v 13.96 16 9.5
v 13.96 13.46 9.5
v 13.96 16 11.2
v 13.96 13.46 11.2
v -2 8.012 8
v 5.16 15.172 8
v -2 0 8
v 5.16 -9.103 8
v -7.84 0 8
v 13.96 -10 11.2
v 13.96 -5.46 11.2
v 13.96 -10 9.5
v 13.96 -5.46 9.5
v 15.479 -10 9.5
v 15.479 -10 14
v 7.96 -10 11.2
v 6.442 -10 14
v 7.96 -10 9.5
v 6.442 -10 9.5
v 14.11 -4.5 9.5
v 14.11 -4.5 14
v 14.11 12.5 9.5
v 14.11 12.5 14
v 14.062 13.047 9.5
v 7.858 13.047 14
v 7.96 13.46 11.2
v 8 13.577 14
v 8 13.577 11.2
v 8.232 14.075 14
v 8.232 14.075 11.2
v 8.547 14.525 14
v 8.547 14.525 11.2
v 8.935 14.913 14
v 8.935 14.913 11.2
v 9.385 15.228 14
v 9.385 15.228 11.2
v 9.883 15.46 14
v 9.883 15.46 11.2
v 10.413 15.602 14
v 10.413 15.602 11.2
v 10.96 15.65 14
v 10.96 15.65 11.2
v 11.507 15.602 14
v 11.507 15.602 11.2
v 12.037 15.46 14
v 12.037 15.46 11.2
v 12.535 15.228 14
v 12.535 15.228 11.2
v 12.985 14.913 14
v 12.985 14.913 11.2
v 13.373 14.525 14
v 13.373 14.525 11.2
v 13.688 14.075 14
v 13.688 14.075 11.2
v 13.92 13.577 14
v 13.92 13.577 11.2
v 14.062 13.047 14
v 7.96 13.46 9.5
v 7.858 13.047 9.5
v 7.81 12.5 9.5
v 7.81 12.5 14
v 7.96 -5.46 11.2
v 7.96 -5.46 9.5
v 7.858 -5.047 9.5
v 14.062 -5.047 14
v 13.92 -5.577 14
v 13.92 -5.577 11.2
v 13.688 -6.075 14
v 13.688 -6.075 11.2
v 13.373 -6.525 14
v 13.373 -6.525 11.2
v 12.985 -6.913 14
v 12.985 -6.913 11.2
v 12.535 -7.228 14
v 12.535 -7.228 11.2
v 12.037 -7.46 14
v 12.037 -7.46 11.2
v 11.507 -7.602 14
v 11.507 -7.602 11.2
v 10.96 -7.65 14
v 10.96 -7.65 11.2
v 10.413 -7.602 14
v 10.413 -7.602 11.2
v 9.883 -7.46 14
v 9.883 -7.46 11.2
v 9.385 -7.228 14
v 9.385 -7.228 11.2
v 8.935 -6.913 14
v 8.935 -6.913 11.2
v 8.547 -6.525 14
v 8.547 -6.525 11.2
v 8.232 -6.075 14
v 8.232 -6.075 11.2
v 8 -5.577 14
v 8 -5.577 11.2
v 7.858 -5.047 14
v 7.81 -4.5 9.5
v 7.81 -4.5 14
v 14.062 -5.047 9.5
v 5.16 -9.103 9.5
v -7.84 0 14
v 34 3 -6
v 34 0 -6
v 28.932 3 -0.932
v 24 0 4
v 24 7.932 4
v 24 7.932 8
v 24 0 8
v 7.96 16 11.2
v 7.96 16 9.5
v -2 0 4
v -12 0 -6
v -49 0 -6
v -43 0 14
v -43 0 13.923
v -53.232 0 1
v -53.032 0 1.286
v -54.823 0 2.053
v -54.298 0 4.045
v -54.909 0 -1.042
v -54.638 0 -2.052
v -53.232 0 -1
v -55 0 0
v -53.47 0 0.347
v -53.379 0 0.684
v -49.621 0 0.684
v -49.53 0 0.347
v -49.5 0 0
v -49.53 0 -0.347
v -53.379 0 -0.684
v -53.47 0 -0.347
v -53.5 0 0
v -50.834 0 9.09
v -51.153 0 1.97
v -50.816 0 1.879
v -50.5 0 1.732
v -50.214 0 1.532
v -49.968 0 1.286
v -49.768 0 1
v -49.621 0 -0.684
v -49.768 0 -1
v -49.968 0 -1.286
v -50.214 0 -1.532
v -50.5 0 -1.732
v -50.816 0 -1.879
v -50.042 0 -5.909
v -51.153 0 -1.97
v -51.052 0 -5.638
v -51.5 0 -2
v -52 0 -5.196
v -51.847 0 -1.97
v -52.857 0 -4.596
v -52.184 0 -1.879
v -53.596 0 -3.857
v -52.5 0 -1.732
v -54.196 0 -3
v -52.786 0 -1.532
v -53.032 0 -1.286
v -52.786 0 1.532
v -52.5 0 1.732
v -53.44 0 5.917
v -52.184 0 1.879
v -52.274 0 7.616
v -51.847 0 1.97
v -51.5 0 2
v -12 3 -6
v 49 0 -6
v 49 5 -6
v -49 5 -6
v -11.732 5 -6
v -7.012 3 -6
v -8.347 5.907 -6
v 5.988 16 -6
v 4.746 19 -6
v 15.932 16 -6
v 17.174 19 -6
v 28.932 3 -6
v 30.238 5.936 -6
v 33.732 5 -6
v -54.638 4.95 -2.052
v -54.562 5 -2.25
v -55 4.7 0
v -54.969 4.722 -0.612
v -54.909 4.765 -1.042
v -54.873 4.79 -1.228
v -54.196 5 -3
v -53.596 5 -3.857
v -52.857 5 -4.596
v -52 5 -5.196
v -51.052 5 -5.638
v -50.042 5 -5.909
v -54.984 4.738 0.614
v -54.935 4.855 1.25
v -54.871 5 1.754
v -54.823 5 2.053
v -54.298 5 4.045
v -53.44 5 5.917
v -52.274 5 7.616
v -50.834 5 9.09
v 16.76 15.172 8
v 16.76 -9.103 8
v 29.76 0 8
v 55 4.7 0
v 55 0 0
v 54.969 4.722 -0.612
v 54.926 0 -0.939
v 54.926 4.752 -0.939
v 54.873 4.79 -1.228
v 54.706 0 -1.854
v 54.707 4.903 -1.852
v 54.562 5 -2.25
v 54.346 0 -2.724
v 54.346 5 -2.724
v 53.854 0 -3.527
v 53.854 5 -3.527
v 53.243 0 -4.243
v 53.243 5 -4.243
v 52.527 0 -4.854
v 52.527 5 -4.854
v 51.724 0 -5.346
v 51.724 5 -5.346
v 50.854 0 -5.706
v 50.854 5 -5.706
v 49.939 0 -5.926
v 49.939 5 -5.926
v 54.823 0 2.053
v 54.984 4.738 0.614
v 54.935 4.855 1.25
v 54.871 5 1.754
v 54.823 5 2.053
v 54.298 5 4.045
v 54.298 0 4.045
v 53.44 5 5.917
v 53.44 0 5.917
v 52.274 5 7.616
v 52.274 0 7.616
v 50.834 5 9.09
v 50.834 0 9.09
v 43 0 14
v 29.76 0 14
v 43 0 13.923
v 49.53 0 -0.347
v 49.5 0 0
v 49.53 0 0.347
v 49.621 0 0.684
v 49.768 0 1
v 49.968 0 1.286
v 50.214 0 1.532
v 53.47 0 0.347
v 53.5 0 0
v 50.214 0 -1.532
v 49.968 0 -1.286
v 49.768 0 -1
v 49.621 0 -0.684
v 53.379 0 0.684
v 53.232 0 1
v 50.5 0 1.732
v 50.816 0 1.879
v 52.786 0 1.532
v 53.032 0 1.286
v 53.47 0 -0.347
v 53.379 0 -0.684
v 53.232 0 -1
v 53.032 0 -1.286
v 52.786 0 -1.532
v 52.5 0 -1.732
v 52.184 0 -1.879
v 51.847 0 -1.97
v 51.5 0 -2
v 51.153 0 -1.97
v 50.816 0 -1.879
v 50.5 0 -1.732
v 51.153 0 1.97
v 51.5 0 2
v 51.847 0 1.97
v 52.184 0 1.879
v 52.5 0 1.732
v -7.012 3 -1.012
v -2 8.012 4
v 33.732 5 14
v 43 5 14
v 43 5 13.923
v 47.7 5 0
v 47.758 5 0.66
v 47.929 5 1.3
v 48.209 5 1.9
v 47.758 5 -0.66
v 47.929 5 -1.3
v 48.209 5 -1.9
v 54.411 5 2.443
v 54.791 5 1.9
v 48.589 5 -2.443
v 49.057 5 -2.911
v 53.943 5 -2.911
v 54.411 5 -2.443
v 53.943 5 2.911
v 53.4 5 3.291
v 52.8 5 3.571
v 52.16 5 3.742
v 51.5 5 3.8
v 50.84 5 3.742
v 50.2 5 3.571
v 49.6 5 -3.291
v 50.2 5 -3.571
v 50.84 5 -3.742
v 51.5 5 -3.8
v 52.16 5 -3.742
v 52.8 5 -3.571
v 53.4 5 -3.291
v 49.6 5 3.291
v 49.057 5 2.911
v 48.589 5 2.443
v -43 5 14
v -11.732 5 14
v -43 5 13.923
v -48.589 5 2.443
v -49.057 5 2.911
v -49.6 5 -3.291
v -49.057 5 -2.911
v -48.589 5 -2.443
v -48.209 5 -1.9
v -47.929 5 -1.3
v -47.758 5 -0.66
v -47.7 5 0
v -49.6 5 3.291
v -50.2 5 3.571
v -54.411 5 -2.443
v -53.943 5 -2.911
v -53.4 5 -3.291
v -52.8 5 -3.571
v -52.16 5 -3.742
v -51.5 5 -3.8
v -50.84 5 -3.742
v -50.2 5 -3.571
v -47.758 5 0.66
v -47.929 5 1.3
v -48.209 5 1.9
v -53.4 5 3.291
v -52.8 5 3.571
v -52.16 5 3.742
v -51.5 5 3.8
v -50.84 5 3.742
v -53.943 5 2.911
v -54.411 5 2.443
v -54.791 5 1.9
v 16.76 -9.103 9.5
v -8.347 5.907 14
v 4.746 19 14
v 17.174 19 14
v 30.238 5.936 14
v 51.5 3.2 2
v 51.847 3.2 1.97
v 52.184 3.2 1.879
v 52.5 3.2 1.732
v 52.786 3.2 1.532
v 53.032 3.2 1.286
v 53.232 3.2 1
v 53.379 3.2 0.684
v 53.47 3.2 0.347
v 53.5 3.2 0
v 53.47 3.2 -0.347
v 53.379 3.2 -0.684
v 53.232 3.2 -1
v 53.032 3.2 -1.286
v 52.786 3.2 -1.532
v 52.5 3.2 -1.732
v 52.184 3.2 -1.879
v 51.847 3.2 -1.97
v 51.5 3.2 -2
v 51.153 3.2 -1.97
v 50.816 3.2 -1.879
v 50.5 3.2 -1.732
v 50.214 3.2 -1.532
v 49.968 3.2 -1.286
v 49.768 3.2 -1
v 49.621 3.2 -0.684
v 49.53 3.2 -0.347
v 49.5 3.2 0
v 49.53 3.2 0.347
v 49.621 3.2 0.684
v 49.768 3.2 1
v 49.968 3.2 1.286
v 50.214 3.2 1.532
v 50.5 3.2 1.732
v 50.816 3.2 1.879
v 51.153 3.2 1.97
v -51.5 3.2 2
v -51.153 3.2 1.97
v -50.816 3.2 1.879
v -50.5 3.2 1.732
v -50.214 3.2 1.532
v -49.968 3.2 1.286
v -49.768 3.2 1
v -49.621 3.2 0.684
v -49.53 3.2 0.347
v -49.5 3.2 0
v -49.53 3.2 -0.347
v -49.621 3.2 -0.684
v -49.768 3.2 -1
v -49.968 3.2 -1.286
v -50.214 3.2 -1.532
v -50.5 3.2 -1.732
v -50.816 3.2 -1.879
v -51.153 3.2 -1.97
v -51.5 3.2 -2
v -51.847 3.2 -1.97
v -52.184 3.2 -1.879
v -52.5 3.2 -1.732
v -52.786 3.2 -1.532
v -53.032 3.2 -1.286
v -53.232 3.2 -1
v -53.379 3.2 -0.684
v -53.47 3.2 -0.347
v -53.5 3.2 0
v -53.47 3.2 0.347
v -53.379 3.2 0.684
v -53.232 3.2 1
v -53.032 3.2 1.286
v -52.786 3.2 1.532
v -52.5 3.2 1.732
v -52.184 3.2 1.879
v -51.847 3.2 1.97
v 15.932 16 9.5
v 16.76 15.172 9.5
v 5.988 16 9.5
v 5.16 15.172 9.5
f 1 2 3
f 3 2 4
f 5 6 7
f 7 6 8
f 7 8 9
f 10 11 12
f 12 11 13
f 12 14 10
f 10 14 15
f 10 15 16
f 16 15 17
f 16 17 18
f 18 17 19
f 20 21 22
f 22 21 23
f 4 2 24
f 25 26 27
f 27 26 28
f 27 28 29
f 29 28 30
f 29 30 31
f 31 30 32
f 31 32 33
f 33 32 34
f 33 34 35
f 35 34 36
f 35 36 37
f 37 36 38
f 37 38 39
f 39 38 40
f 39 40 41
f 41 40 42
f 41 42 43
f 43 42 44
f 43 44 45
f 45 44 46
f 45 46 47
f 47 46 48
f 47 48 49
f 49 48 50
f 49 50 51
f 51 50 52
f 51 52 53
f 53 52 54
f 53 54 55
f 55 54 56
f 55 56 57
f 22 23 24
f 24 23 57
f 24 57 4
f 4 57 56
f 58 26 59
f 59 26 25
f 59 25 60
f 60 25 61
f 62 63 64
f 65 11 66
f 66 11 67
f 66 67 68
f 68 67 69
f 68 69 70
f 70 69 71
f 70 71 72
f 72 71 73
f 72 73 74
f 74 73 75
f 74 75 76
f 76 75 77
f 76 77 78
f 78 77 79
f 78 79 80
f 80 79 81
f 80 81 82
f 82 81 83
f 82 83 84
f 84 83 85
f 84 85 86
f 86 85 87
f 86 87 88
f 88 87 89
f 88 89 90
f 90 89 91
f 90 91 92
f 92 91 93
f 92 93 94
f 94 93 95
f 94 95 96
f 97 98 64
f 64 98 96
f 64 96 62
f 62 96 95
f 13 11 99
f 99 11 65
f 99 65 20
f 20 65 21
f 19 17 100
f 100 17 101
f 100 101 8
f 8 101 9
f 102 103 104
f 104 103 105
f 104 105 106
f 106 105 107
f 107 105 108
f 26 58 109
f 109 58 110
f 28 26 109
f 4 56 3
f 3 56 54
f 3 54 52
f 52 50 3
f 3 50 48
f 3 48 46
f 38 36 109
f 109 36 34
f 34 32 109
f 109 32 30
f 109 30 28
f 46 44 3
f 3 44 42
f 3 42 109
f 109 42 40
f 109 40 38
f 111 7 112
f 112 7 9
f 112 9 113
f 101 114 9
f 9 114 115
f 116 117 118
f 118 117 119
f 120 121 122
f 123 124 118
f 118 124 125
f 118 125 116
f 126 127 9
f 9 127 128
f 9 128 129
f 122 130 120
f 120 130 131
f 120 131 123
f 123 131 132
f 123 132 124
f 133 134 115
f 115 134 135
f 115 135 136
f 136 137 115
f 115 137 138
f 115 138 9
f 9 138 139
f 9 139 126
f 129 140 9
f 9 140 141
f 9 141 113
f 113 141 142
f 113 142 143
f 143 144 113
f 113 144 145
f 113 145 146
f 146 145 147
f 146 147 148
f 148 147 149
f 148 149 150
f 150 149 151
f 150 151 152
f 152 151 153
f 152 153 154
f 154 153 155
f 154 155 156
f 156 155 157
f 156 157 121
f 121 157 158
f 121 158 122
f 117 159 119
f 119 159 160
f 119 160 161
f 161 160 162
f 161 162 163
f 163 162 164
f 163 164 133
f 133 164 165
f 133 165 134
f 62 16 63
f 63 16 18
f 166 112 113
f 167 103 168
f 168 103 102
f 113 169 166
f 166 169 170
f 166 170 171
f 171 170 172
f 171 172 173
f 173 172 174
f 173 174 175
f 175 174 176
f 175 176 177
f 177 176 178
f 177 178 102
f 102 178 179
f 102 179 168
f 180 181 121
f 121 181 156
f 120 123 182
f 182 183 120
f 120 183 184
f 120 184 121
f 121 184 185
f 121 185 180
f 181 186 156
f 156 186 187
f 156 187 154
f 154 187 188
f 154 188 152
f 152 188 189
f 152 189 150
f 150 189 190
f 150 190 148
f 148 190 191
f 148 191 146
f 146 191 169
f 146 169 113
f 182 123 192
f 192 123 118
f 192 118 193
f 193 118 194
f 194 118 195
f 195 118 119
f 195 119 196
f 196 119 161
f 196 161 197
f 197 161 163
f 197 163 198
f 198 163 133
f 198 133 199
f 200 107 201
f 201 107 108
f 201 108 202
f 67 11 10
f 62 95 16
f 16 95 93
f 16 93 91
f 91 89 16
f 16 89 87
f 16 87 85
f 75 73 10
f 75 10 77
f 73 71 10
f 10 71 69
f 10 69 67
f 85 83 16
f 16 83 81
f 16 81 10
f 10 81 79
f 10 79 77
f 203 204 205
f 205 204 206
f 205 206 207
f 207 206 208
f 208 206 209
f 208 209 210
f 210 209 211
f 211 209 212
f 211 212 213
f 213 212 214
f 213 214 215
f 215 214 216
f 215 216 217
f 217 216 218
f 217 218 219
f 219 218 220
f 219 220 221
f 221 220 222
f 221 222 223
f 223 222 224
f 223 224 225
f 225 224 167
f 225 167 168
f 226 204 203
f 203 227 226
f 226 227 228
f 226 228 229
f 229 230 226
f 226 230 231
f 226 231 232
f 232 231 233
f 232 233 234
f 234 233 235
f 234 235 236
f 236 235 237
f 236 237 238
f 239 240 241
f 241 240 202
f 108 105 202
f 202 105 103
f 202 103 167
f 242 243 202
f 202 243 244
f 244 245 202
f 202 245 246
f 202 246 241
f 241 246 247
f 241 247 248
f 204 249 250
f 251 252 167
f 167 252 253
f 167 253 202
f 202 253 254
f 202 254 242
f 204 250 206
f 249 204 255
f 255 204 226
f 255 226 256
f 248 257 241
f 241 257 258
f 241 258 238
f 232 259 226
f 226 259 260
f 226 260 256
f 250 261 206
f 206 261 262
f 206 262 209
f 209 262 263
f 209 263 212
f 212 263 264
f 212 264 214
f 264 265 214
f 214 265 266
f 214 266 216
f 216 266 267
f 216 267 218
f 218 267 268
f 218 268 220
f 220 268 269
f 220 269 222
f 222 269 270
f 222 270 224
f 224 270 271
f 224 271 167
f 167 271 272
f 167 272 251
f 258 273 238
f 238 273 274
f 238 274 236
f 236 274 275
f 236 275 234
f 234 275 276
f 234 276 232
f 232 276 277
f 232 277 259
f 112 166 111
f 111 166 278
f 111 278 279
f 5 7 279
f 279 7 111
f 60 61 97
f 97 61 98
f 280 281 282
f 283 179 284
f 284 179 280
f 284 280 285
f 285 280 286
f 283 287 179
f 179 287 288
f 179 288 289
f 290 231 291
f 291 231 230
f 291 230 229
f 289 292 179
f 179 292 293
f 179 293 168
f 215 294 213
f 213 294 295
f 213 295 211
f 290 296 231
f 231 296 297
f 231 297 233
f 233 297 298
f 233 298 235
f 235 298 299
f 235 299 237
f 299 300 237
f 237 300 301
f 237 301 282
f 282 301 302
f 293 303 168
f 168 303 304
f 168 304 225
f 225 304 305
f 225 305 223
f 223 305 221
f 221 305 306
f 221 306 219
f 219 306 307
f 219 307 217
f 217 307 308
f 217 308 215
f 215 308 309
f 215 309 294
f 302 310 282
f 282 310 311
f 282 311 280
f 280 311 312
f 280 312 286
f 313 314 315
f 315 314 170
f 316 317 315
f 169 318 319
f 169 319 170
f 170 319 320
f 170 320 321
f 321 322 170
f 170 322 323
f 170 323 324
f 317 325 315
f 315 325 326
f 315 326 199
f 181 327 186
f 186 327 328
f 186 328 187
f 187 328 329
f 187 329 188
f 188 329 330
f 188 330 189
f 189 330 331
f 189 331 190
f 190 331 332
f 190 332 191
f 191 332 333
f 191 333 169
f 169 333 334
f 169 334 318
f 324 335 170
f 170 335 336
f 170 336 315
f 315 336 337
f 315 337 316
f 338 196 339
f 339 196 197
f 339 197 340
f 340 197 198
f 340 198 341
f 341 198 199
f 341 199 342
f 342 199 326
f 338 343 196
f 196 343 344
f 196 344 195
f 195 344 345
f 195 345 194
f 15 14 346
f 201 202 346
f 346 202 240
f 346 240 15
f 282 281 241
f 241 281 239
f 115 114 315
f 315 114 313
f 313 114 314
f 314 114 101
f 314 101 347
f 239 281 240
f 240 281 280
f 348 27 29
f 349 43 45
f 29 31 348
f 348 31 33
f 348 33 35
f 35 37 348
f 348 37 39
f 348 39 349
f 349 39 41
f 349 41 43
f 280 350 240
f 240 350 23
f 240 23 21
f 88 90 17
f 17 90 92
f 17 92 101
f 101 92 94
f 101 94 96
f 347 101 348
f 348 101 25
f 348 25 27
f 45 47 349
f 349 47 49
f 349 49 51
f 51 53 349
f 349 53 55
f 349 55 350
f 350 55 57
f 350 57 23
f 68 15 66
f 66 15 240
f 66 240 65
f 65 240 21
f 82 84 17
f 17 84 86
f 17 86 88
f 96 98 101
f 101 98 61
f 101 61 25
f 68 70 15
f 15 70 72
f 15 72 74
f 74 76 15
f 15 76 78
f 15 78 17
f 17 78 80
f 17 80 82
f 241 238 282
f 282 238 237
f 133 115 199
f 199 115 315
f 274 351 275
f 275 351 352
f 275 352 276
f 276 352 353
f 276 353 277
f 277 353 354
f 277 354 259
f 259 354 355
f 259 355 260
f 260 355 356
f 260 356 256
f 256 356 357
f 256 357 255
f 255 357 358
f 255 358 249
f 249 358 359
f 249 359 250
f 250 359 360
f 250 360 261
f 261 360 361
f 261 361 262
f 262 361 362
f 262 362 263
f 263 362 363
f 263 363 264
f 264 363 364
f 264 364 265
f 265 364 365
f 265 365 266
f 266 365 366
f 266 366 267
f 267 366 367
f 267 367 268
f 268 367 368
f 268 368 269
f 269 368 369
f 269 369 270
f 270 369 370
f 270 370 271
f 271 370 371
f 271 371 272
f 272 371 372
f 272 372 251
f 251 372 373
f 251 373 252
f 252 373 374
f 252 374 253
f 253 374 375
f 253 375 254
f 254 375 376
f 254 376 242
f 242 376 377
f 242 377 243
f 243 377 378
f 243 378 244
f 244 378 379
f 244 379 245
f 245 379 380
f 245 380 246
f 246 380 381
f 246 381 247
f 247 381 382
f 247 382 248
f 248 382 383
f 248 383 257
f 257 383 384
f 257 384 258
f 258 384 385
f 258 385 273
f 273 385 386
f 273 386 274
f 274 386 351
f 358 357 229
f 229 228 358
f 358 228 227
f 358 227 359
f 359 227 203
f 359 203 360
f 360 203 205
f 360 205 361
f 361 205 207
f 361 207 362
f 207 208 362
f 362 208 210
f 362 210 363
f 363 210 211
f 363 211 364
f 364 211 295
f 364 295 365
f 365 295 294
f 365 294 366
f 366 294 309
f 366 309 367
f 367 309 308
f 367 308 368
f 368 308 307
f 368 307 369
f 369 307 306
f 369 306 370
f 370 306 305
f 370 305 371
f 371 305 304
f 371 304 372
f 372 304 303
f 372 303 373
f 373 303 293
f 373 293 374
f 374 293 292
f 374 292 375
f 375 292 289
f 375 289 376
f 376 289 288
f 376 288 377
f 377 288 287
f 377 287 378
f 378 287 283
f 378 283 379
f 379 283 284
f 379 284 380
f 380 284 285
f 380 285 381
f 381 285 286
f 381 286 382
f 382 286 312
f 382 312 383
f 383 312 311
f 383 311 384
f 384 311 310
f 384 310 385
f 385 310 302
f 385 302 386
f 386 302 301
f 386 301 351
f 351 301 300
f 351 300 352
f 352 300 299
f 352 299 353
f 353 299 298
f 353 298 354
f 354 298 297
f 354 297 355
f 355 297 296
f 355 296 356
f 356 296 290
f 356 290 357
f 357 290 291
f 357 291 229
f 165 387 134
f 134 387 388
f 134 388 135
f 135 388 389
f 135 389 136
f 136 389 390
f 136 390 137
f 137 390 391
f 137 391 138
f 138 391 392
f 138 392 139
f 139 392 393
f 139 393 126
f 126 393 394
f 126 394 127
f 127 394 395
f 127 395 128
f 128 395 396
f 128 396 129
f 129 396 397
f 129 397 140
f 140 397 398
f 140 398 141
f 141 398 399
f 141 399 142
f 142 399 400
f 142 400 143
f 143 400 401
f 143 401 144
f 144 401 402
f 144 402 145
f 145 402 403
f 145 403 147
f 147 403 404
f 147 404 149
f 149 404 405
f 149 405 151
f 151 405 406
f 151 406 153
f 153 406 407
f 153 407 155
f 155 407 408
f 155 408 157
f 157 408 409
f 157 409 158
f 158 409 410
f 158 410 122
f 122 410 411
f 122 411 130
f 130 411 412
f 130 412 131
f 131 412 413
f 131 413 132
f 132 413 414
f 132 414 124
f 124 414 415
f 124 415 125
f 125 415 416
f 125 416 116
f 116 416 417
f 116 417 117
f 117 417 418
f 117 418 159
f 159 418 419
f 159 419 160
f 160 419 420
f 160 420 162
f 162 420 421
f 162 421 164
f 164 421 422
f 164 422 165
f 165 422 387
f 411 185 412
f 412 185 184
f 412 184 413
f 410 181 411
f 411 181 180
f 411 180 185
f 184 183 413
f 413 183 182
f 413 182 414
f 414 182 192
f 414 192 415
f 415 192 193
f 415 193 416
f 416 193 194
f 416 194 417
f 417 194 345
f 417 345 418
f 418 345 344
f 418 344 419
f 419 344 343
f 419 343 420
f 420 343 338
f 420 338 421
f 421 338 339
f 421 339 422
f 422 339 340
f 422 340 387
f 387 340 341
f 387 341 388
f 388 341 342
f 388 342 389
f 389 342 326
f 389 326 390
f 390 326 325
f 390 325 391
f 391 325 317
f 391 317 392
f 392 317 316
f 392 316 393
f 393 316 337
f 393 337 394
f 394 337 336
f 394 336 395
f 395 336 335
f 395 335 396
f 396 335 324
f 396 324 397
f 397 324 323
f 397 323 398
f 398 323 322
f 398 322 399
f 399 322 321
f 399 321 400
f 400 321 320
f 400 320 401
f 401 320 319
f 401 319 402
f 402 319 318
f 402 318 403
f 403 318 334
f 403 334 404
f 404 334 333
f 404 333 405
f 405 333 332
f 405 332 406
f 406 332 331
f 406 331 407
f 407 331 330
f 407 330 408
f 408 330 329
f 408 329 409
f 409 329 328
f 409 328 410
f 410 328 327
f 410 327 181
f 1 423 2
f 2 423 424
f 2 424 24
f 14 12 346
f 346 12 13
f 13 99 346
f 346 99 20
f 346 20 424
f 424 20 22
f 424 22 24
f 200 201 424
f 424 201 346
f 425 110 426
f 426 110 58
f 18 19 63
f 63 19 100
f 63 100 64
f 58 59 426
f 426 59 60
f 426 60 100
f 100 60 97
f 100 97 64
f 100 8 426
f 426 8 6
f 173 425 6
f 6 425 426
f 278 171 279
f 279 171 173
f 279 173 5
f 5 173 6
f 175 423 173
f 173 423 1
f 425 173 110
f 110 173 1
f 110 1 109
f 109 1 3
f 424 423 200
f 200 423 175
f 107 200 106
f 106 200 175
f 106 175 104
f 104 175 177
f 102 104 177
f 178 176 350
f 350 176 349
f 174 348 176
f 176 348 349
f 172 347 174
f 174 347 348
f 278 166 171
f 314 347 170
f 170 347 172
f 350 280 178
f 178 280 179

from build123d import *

# Parameters (mm, degrees)
BOSS_EXTRUDE1_DEPTH           = 3
CUT_EXTRUDE1_DEPTH            = 10
CUT_EXTRUDE3_START            = 8
SKETCH8_W                     = 6
SKETCH8_H                     = 3
CUT_EXTRUDE3_DEPTH            = 6
BOSS_EXTRUDE4_START           = 18
BOSS_EXTRUDE4_DEPTH           = 28
BOSS_EXTRUDE5_DEPTH           = 3
CUT_EXTRUDE4_DEPTH            = 3
CUT_EXTRUDE5_DEPTH            = 10
SKETCH18_R                    = 1.5
BOSS_EXTRUDE9_DEPTH           = 2
CHAMFER1_SIZE                 = 15
CHAMFER2_SIZE                 = 15
CHAMFER2_SIZE_2               = 10.503113073
CUT_EXTRUDE6_DEPTH            = 5
BOSS_EXTRUDE8_DEPTH           = 2
CHAMFER3_DEPTH                = 6
CHAMFER3_2_DEPTH              = 5
CSK_FOR_M4_SFHCS1_D           = 4
CSK_FOR_M4_SFHCS1_DEPTH       = 30.798278762
CSK_FOR_M4_SFHCS1_CSINK_D     = 7.5
CSK_FOR_M4_SFHCS1_CSINK_ANGLE = 90
CSK_FOR_M4_SFHCS1_TIP         = 1.201721238
CUT_EXTRUDE7_DEPTH            = 1.5
BOSS_EXTRUDE10_START          = -6
BOSS_EXTRUDE10_DEPTH          = 20
CHAMFER4_SIZE                 = 1.07179677
CHAMFER4_SIZE_2               = 4


with BuildPart() as part:
    # Sketch1 → Boss-Extrude1 (new body)
    with BuildSketch(Plane(origin=(0, 0, 0), x_dir=(1, 0, 0), z_dir=(0, 1, 0))):
        with BuildLine():
            ThreePointArc((-49, -6), (-53.242640687, -4.242640687), (-55, 0))
            ThreePointArc((-55, 0), (-51.485281374, -8.485281374), (-43, -12))
            Line((-43, -12), (43, -12))
            ThreePointArc((43, -12), (51.485281374, -8.485281374), (55, 0))
            ThreePointArc((55, 0), (53.242640687, -4.242640687), (49, -6))
            Line((49, -6), (-49, -6))
        make_face()
        with BuildLine():
            Line((-53, 0), (-55, 0))
            ThreePointArc((-55, 0), (-53.242640687, -4.242640687), (-49, -6))
            Line((-49, -6), (49, -6))
            ThreePointArc((49, -6), (53.242640687, -4.242640687), (55, 0))
            Line((55, 0), (53, 0))
            ThreePointArc((53, 0), (51.5, -1.5), (50, 0))
            Line((50, 0), (-50, 0))
            ThreePointArc((-50, 0), (-51.5, -1.5), (-53, 0))
        make_face()
        with BuildLine():
            Line((49, 6), (-49, 6))
            ThreePointArc((-49, 6), (-53.242640687, 4.242640687), (-55, 0))
            Line((-55, 0), (-53, 0))
            ThreePointArc((-53, 0), (-51.5, 1.5), (-50, 0))
            Line((-50, 0), (50, 0))
            ThreePointArc((50, 0), (51.5, 1.5), (53, 0))
            Line((53, 0), (55, 0))
            ThreePointArc((55, 0), (53.242640687, 4.242640687), (49, 6))
        make_face()
    extrude(amount=BOSS_EXTRUDE1_DEPTH)

    # Sketch2 → Cut-Extrude1 (cut)
    with BuildSketch(Plane(origin=(0, 3, 0), x_dir=(1, 0, 0), z_dir=(0, 1, 0))):
        Polygon((22, -8), (36, 6), (-14, 6), (0, -8), align=None)
    extrude(amount=-CUT_EXTRUDE1_DEPTH, mode=Mode.SUBTRACT)

    # Sketch8 → Cut-Extrude3 (cut)
    with BuildSketch(Plane.XY.offset(CUT_EXTRUDE3_START)):
        with Locations((10.960071178, 1.5)):
            Rectangle(SKETCH8_W, SKETCH8_H)
    extrude(amount=CUT_EXTRUDE3_DEPTH, mode=Mode.SUBTRACT)


with BuildPart() as cut_extrude3_piece_1:
    # of the separate pieces the step leaves, piece 1, a body of its own (cut_extrude3_pieces)
    add(part.part.solids().sort_by_distance((-55, 0, 0))[0])

    # Sketch9 → Boss-Extrude4 (add)
    with BuildSketch(Plane(origin=(0, 0, 0), x_dir=(1, 0, 0), z_dir=(0, 1, 0)).offset(BOSS_EXTRUDE4_START)):
        Polygon((13.960071178, -11.2), (13.960071178, -8), (14.760071178, -8), (14.760071178, -12), (7.160071178, -12), (7.160071178, -8), (7.960071178, -8), (7.960071178, -11.2), align=None)
    extrude(amount=-BOSS_EXTRUDE4_DEPTH)


with BuildPart() as cut_extrude3_piece_2:
    # of the separate pieces the step leaves, piece 2, a body of its own (cut_extrude3_pieces)
    add(part.part.solids().sort_by_distance((13.960071178, 0, 12))[0])


with BuildPart() as cut_extrude3_piece_1_1:
    add(cut_extrude3_piece_1.part)

    # Combine1: union Cut-Extrude3 piece 2
    add(cut_extrude3_piece_2.part)

    # Sketch11 → Boss-Extrude5 (add)
    with BuildSketch(Plane(origin=(0, 3, 0), x_dir=(1, 0, 0), z_dir=(0, 1, 0))):
        Polygon((-14, 6), (-12, 6), (2, -8), (0, -8), align=None)
        Polygon((20, -8), (34, 6), (36, 6), (22, -8), align=None)
    extrude(amount=-BOSS_EXTRUDE5_DEPTH)

    # Sketch13 → Cut-Extrude4 (cut)
    with BuildSketch(Plane(origin=(0, 3, 0), x_dir=(1, 0, 0), z_dir=(0, 1, 0))):
        Polygon((2, -8), (-2, -8), (-2, -4), align=None)
        Polygon((24, -4), (24, -8), (20, -8), align=None)
    extrude(amount=-CUT_EXTRUDE4_DEPTH, mode=Mode.SUBTRACT)

    # Sketch15 → Cut-Extrude5 (cut)
    with BuildSketch(Plane.XY.offset(12)):
        with BuildLine():
            Line((14.110071178, 12.5), (14.110071178, -4.5))
            ThreePointArc((14.110071178, -4.5), (10.960071178, -7.65), (7.810071178, -4.5))
            Line((7.810071178, -4.5), (7.810071178, 12.5))
            ThreePointArc((7.810071178, 12.5), (10.960071178, 15.65), (14.110071178, 12.5))
        make_face()
    extrude(amount=-CUT_EXTRUDE5_DEPTH, mode=Mode.SUBTRACT)

    # Sketch18 → Boss-Extrude9 (add)
    # profile 1 of 2: a face of its own
    with BuildSketch(Plane(origin=(0, 3, 0), x_dir=(1, 0, 0), z_dir=(0, 1, 0))):
        with BuildLine():
            Line((7.160071178, -8), (-2, -8))
            Line((-2, -8), (-2, -4))
            Line((-2, -4), (-12, 6))
            Line((-12, 6), (-49, 6))
            ThreePointArc((-49, 6), (-53.242640687, 4.242640687), (-55, 0))
            ThreePointArc((-55, 0), (-51.485281374, -8.485281374), (-43, -12))
            Line((-43, -12), (7.160071178, -12))
            Line((7.160071178, -12), (7.160071178, -8))
        make_face()
        with Locations(Location((-51.5, 0, 0), (0, 0, 270))):
            Circle(SKETCH18_R, mode=Mode.SUBTRACT)
    # profile 2 of 2: a face of its own
    with BuildSketch(Plane(origin=(0, 3, 0), x_dir=(1, 0, 0), z_dir=(0, 1, 0))):
        with BuildLine():
            Line((24, -4), (24, -8))
            Line((24, -8), (14.760071178, -8))
            Line((14.760071178, -8), (14.760071178, -12))
            Line((14.760071178, -12), (43, -12))
            ThreePointArc((43, -12), (51.485281374, -8.485281374), (55, 0))
            ThreePointArc((55, 0), (53.242640687, 4.242640687), (49, 6))
            Line((49, 6), (34, 6))
            Line((34, 6), (24, -4))
        make_face()
        with Locations(Location((51.5, 0, 0), (0, 0, 270))):
            Circle(SKETCH18_R, mode=Mode.SUBTRACT)
    extrude(amount=BOSS_EXTRUDE9_DEPTH)

    # Chamfer1
    # the kernel refuses this chamfer: 15 mm, written as the material it adds along each edge
    with BuildSketch(Plane(origin=(14.760071178, 5, 8), x_dir=(0, 1, 0), z_dir=(0, 0, 1))) as chamfer1_piece_1_section:
        Polygon((CHAMFER1_SIZE, 0), (0, -CHAMFER1_SIZE), (0, 0), align=None)
    chamfer1_piece_1 = extrude(amount=4, mode=Mode.PRIVATE)
    chamfer1_piece_1 = split(chamfer1_piece_1, bisect_by=Plane(origin=(14.760071178, 18, 8), z_dir=(0, -1, 0)), keep=Keep.TOP, mode=Mode.PRIVATE)
    chamfer1_piece_1 = split(chamfer1_piece_1, bisect_by=Plane(origin=(17.380035589, 5, 10.619964411), z_dir=(-0.7071067811865474, 0, -0.7071067811865477)), keep=Keep.TOP, mode=Mode.PRIVATE)
    add(chamfer1_piece_1)
    with BuildSketch(Plane(origin=(14.760071178, 5, -30.575244819), x_dir=(0, 1, 0), z_dir=(0, 0, 1))) as chamfer1_piece_2_section:
        Polygon((CHAMFER1_SIZE, 0), (0, -CHAMFER1_SIZE), (0, 0), align=None)
    chamfer1_piece_2 = extrude(amount=42.575244819, mode=Mode.PRIVATE)
    chamfer1_piece_2 = split(chamfer1_piece_2, bisect_by=Plane(origin=(14.760071178, 5, 8), z_dir=(0, 0, -1)), keep=Keep.TOP, mode=Mode.PRIVATE)
    chamfer1_piece_2 = split(chamfer1_piece_2, bisect_by=Plane(origin=(36.667657999, 5, -8.667657999), z_dir=(0.7071067811865474, 0, 0.7071067811865477)), keep=Keep.TOP, mode=Mode.PRIVATE)
    chamfer1_piece_2 = split(chamfer1_piece_2, bisect_by=Plane(origin=(24, 5, -30.575244819), z_dir=(1, 0, 0)), keep=Keep.TOP, mode=Mode.PRIVATE)
    add(chamfer1_piece_2)
    with BuildSketch(Plane(origin=(14.760071178, 5, 8), x_dir=(0, 1, 0), z_dir=(0, 0, 1))) as chamfer1_piece_3_section:
        Polygon((CHAMFER1_SIZE, 0), (0, -CHAMFER1_SIZE), (0, 0), align=None)
    chamfer1_piece_3 = extrude(amount=4, mode=Mode.PRIVATE)
    chamfer1_piece_3 = split(chamfer1_piece_3, bisect_by=Plane(origin=(14.760071178, 18, 8), z_dir=(0, -1, 0)), keep=Keep.TOP, mode=Mode.PRIVATE)
    chamfer1_piece_3 = split(chamfer1_piece_3, bisect_by=Plane(origin=(17.380035589, 5, 10.619964411), z_dir=(0.7071067811865474, 0, 0.7071067811865477)), keep=Keep.TOP, mode=Mode.PRIVATE)
    chamfer1_piece_3 = split(chamfer1_piece_3, bisect_by=Plane(origin=(24, 5, 8), z_dir=(-1, 0, 0)), keep=Keep.TOP, mode=Mode.PRIVATE)
    add(chamfer1_piece_3)
    with BuildSketch(Plane(origin=(14.760071178, 5, 8), x_dir=(0, 1, 0), z_dir=(0, 0, 1))) as chamfer1_piece_4_section:
        Polygon((CHAMFER1_SIZE, 0), (0, -CHAMFER1_SIZE), (0, 0), align=None)
    chamfer1_piece_4 = extrude(amount=4, mode=Mode.PRIVATE)
    chamfer1_piece_4 = split(chamfer1_piece_4, bisect_by=Plane(origin=(24, 5, 8), z_dir=(1, 0, 0)), keep=Keep.TOP, mode=Mode.PRIVATE)
    add(chamfer1_piece_4)
    with BuildSketch(Plane(origin=(7.160071178, 5, 12), x_dir=(0, 1, 0), z_dir=(0, 0, -1))) as chamfer1_piece_5_section:
        Polygon((CHAMFER1_SIZE, 0), (0, -CHAMFER1_SIZE), (0, 0), align=None)
    chamfer1_piece_5 = extrude(amount=4, mode=Mode.PRIVATE)
    chamfer1_piece_5 = split(chamfer1_piece_5, bisect_by=Plane(origin=(6.580035589, 5, 12.580035589), z_dir=(-0.7071067811865489, 0, 0.7071067811865461)), keep=Keep.TOP, mode=Mode.PRIVATE)
    chamfer1_piece_5 = split(chamfer1_piece_5, bisect_by=Plane(origin=(-2, 5, 12), z_dir=(1, 0, 0)), keep=Keep.TOP, mode=Mode.PRIVATE)
    chamfer1_piece_5 = split(chamfer1_piece_5, bisect_by=Plane(origin=(7.160071178, 18, 12), z_dir=(0, -1, 0)), keep=Keep.TOP, mode=Mode.PRIVATE)
    add(chamfer1_piece_5)
    with BuildSketch(Plane(origin=(7.160071178, 5, 12), x_dir=(0, 1, 0), z_dir=(0, 0, -1))) as chamfer1_piece_6_section:
        Polygon((CHAMFER1_SIZE, 0), (0, -CHAMFER1_SIZE), (0, 0), align=None)
    chamfer1_piece_6 = extrude(amount=4, mode=Mode.PRIVATE)
    chamfer1_piece_6 = split(chamfer1_piece_6, bisect_by=Plane(origin=(-2, 5, 12), z_dir=(-1, 0, 0)), keep=Keep.TOP, mode=Mode.PRIVATE)
    add(chamfer1_piece_6)
    with BuildSketch(Plane(origin=(7.160071178, 5, 12), x_dir=(0, 1, 0), z_dir=(0, 0, -1))) as chamfer1_piece_7_section:
        Polygon((CHAMFER1_SIZE, 0), (0, -CHAMFER1_SIZE), (0, 0), align=None)
    chamfer1_piece_7 = extrude(amount=4, mode=Mode.PRIVATE)
    chamfer1_piece_7 = split(chamfer1_piece_7, bisect_by=Plane(origin=(6.580035589, 5, 12.580035589), z_dir=(0.7071067811865489, 0, -0.7071067811865461)), keep=Keep.TOP, mode=Mode.PRIVATE)
    chamfer1_piece_7 = split(chamfer1_piece_7, bisect_by=Plane(origin=(7.160071178, 18, 12), z_dir=(0, -1, 0)), keep=Keep.TOP, mode=Mode.PRIVATE)
    add(chamfer1_piece_7)
    with BuildSketch(Plane(origin=(7.160071178, 5, 12), x_dir=(0, 1, 0), z_dir=(0, 0, -1))) as chamfer1_piece_8_section:
        Polygon((CHAMFER1_SIZE, 0), (0, -CHAMFER1_SIZE), (0, 0), align=None)
    chamfer1_piece_8 = extrude(amount=42.575244819, mode=Mode.PRIVATE)
    chamfer1_piece_8 = split(chamfer1_piece_8, bisect_by=Plane(origin=(6.580035589, 5, 12.580035589), z_dir=(-0.7071067811865489, 0, 0.7071067811865461)), keep=Keep.TOP, mode=Mode.PRIVATE)
    chamfer1_piece_8 = split(chamfer1_piece_8, bisect_by=Plane(origin=(-2, 5, 12), z_dir=(-1, 0, 0)), keep=Keep.TOP, mode=Mode.PRIVATE)
    chamfer1_piece_8 = split(chamfer1_piece_8, bisect_by=Plane(origin=(7.160071178, 5, 8), z_dir=(0, 0, -1)), keep=Keep.TOP, mode=Mode.PRIVATE)
    add(chamfer1_piece_8)

    # Chamfer2
    # the kernel refuses this chamfer: 15, 10.503113073 mm, written as the material it adds along each edge
    with BuildSketch(Plane(origin=(7.160071178, 0, 12), x_dir=(-1, 0, 0), z_dir=(0, 0, -1))) as chamfer2_piece_1_section:
        Polygon((CHAMFER2_SIZE, 0), (0, -CHAMFER2_SIZE_2), (0, 0), align=None)
    chamfer2_piece_1 = extrude(amount=4, mode=Mode.PRIVATE)
    chamfer2_piece_1 = split(chamfer2_piece_1, bisect_by=Plane(origin=(-2, 0, 12), z_dir=(-1, 0, 0)), keep=Keep.TOP, mode=Mode.PRIVATE)
    add(chamfer2_piece_1)
    with BuildSketch(Plane(origin=(7.160071178, 0, 12), x_dir=(-1, 0, 0), z_dir=(0, 0, -1))) as chamfer2_piece_2_section:
        Polygon((CHAMFER2_SIZE, 0), (0, -CHAMFER2_SIZE_2), (0, 0), align=None)
    chamfer2_piece_2 = extrude(amount=4, mode=Mode.PRIVATE)
    chamfer2_piece_2 = split(chamfer2_piece_2, bisect_by=Plane(origin=(6.580035589, 0, 12.580035589), z_dir=(-0.7071067811865476, 0, 0.7071067811865476)), keep=Keep.TOP, mode=Mode.PRIVATE)
    chamfer2_piece_2 = split(chamfer2_piece_2, bisect_by=Plane(origin=(-2, 0, 12), z_dir=(1, 0, 0)), keep=Keep.TOP, mode=Mode.PRIVATE)
    add(chamfer2_piece_2)
    with BuildSketch(Plane(origin=(7.160071178, 0, 12), x_dir=(-1, 0, 0), z_dir=(0, 0, -1))) as chamfer2_piece_3_section:
        Polygon((CHAMFER2_SIZE, 0), (0, -CHAMFER2_SIZE_2), (0, 0), align=None)
    chamfer2_piece_3 = extrude(amount=42.738283454, mode=Mode.PRIVATE)
    chamfer2_piece_3 = split(chamfer2_piece_3, bisect_by=Plane(origin=(6.580035589, 0, 12.580035589), z_dir=(-0.7071067811865476, 0, 0.7071067811865476)), keep=Keep.TOP, mode=Mode.PRIVATE)
    chamfer2_piece_3 = split(chamfer2_piece_3, bisect_by=Plane(origin=(7.160071178, 0, 8), z_dir=(0, 0, -1)), keep=Keep.TOP, mode=Mode.PRIVATE)
    chamfer2_piece_3 = split(chamfer2_piece_3, bisect_by=Plane(origin=(-2, 0, 12), z_dir=(-1, 0, 0)), keep=Keep.TOP, mode=Mode.PRIVATE)
    add(chamfer2_piece_3)
    with BuildSketch(Plane(origin=(7.160071178, 0, 12), x_dir=(-1, 0, 0), z_dir=(0, 0, -1))) as chamfer2_piece_4_section:
        Polygon((CHAMFER2_SIZE, 0), (0, -CHAMFER2_SIZE_2), (0, 0), align=None)
    chamfer2_piece_4 = extrude(amount=4, mode=Mode.PRIVATE)
    chamfer2_piece_4 = split(chamfer2_piece_4, bisect_by=Plane(origin=(6.580035589, 0, 12.580035589), z_dir=(0.7071067811865476, 0, -0.7071067811865476)), keep=Keep.TOP, mode=Mode.PRIVATE)
    chamfer2_piece_4 = split(chamfer2_piece_4, bisect_by=Plane(origin=(7.160071178, -10, 12), z_dir=(0, 1, 0)), keep=Keep.TOP, mode=Mode.PRIVATE)
    add(chamfer2_piece_4)
    with BuildSketch(Plane(origin=(14.760071178, 0, 12), x_dir=(0, -1, 0), z_dir=(0, 0, -1))) as chamfer2_piece_5_section:
        Polygon((CHAMFER2_SIZE_2, 0), (0, -CHAMFER2_SIZE), (0, 0), align=None)
    chamfer2_piece_5 = extrude(amount=4, mode=Mode.PRIVATE)
    chamfer2_piece_5 = split(chamfer2_piece_5, bisect_by=Plane(origin=(15.380035589, 0, 12.619964411), z_dir=(0.7071067811865476, 0, 0.7071067811865476)), keep=Keep.TOP, mode=Mode.PRIVATE)
    chamfer2_piece_5 = split(chamfer2_piece_5, bisect_by=Plane(origin=(24, 0, 12), z_dir=(-1, 0, 0)), keep=Keep.TOP, mode=Mode.PRIVATE)
    add(chamfer2_piece_5)
    with BuildSketch(Plane(origin=(14.760071178, 0, 12), x_dir=(0, -1, 0), z_dir=(0, 0, -1))) as chamfer2_piece_6_section:
        Polygon((CHAMFER2_SIZE_2, 0), (0, -CHAMFER2_SIZE), (0, 0), align=None)
    chamfer2_piece_6 = extrude(amount=4, mode=Mode.PRIVATE)
    chamfer2_piece_6 = split(chamfer2_piece_6, bisect_by=Plane(origin=(24, 0, 12), z_dir=(1, 0, 0)), keep=Keep.TOP, mode=Mode.PRIVATE)
    add(chamfer2_piece_6)
    with BuildSketch(Plane(origin=(14.760071178, 0, 12), x_dir=(0, -1, 0), z_dir=(0, 0, -1))) as chamfer2_piece_7_section:
        Polygon((CHAMFER2_SIZE_2, 0), (0, -CHAMFER2_SIZE), (0, 0), align=None)
    chamfer2_piece_7 = extrude(amount=4, mode=Mode.PRIVATE)
    chamfer2_piece_7 = split(chamfer2_piece_7, bisect_by=Plane(origin=(14.760071178, -10, 12), z_dir=(0, 1, 0)), keep=Keep.TOP, mode=Mode.PRIVATE)
    chamfer2_piece_7 = split(chamfer2_piece_7, bisect_by=Plane(origin=(15.380035589, 0, 12.619964411), z_dir=(-0.7071067811865476, 0, -0.7071067811865476)), keep=Keep.TOP, mode=Mode.PRIVATE)
    add(chamfer2_piece_7)
    with BuildSketch(Plane(origin=(14.760071178, 0, 12), x_dir=(0, -1, 0), z_dir=(0, 0, -1))) as chamfer2_piece_8_section:
        Polygon((CHAMFER2_SIZE_2, 0), (0, -CHAMFER2_SIZE), (0, 0), align=None)
    chamfer2_piece_8 = extrude(amount=42.738283454, mode=Mode.PRIVATE)
    chamfer2_piece_8 = split(chamfer2_piece_8, bisect_by=Plane(origin=(14.760071178, 0, 8), z_dir=(0, 0, -1)), keep=Keep.TOP, mode=Mode.PRIVATE)
    chamfer2_piece_8 = split(chamfer2_piece_8, bisect_by=Plane(origin=(15.380035589, 0, 12.619964411), z_dir=(0.7071067811865476, 0, 0.7071067811865476)), keep=Keep.TOP, mode=Mode.PRIVATE)
    chamfer2_piece_8 = split(chamfer2_piece_8, bisect_by=Plane(origin=(24, 0, 12), z_dir=(1, 0, 0)), keep=Keep.TOP, mode=Mode.PRIVATE)
    add(chamfer2_piece_8)

    # Sketch16 → Cut-Extrude6 (cut)
    with BuildSketch(Plane(origin=(0, 0, 0), x_dir=(1, 0, 0), z_dir=(0, 1, 0))):
        Polygon((-7.839928822, 1.839928822), (-2, -4), (-2, -8), (-7.839928822, -8), align=None)
        Polygon((24, -8), (24, -4), (29.760071178, 1.760071178), (29.760071178, -8), align=None)
    extrude(amount=-CUT_EXTRUDE6_DEPTH, mode=Mode.SUBTRACT)

    # Sketch17 → Boss-Extrude8 (add)
    with BuildSketch(Plane.XY.offset(12)):
        Polygon((6.441551245, -10), (15.47859111, -10), (29.760071178, 0), (43, 0), (43, 5), (29.760071178, 5), (16.760071178, 18), (5.160071178, 18), (-7.839928822, 5), (-43, 5), (-43, 0), (-7.839928822, 0), align=None)
        with BuildLine():
            Line((7.810071178, 12.5), (7.810071178, -4.5))
            ThreePointArc((7.810071178, -4.5), (10.960071178, -7.65), (14.110071178, -4.5))
            Line((14.110071178, -4.5), (14.110071178, 12.5))
            ThreePointArc((14.110071178, 12.5), (10.960071178, 15.65), (7.810071178, 12.5))
        make_face(mode=Mode.SUBTRACT)
    extrude(amount=BOSS_EXTRUDE8_DEPTH)

    # Chamfer3: read off the stored shape, not the designer's step
    # Chamfer3 outline → Chamfer3 (cut)
    with BuildSketch(Plane(origin=(0, 0, 0), x_dir=(1, 0, 0), z_dir=(0, 1, 0))):
        with BuildLine():
            ThreePointArc((47.608318931, -11.079864468), (49.300429772, -10.212961602), (50.834384089, -9.08968789))
            Line((50.834384089, -9.08968789), (47.608318931, -11.079864468))
        make_face()
        with BuildLine():
            ThreePointArc((-50.834384089, -9.08968789), (-49.300429772, -10.212961602), (-47.608318931, -11.079864468))
            Line((-47.608318931, -11.079864468), (-50.834384089, -9.08968789))
        make_face()
    extrude(amount=CHAMFER3_DEPTH, mode=Mode.SUBTRACT)

    # Chamfer3 2 outline → Chamfer3 2 (add)
    with BuildSketch(Plane(origin=(0, 0, 0), x_dir=(1, 0, 0), z_dir=(0, 1, 0))):
        with BuildLine():
            Line((43, -13.922760673), (47.608318931, -11.079864468))
            ThreePointArc((47.608318931, -11.079864468), (45.349641077, -11.767717995), (43, -12))
            Line((43, -12), (43, -13.922760673))
        make_face()
        with BuildLine():
            Line((-47.608318931, -11.079864468), (-43, -13.922760673))
            Line((-43, -13.922760673), (-43, -12))
            ThreePointArc((-43, -12), (-45.349641077, -11.767717995), (-47.608318931, -11.079864468))
        make_face()
    extrude(amount=CHAMFER3_2_DEPTH)

    # CSK for M4 SFHCS1
    with Locations(Plane(origin=(0, 5, 0), x_dir=(1, 0, 0), z_dir=(0, 1, 0))):
        with Locations((-51.5, 0), (51.5, 0)):
            CounterSinkHole(CSK_FOR_M4_SFHCS1_D / 2, CSK_FOR_M4_SFHCS1_CSINK_D / 2, depth=CSK_FOR_M4_SFHCS1_DEPTH, counter_sink_angle=CSK_FOR_M4_SFHCS1_CSINK_ANGLE)
            with Locations((0, 0, -(CSK_FOR_M4_SFHCS1_DEPTH + CSK_FOR_M4_SFHCS1_TIP / 2))):  # 118° drill point
                Cone(0, CSK_FOR_M4_SFHCS1_D / 2, CSK_FOR_M4_SFHCS1_TIP, mode=Mode.SUBTRACT)

    # Sketch21 → Cut-Extrude7 (cut)
    with BuildSketch(Plane(origin=(0, 0, 8), x_dir=(-1, 0, 0), z_dir=(0, 0, -1))):
        Polygon((-13.960071178, -10), (-13.960071178, 18), (-16.760071178, 18), (-16.760071178, -9.102697997), (-15.47859111, -10), align=None)
        Polygon((-7.960071178, -10), (-7.960071178, 18), (-5.160071178, 18), (-5.160071178, -9.102697997), (-6.441551245, -10), align=None)
    extrude(amount=-CUT_EXTRUDE7_DEPTH, mode=Mode.SUBTRACT)

    # Sketch22 → Boss-Extrude10 (add)
    with BuildSketch(Plane.XY.offset(BOSS_EXTRUDE10_START)):
        Polygon((34, 3), (28.931644053, 3), (15.931644053, 16), (5.988498302, 16), (-7.011501698, 3), (-12, 3), (-12, 6), (-8.254142385, 6), (4.745857615, 19), (17.17428474, 19), (30.17428474, 6), (34, 6), align=None)
    extrude(amount=BOSS_EXTRUDE10_DEPTH)

    # Chamfer4
    # the kernel refuses this chamfer: 4, 1.07179677 mm, written as the material it takes off along each edge
    with BuildSketch(Plane(origin=(-12, 6, -16.386886281), x_dir=(0, -1, 0), z_dir=(0, 0, 1))) as chamfer4_piece_1_section:
        Polygon((CHAMFER4_SIZE, 0), (0, CHAMFER4_SIZE_2), (0, 0), align=None)
    chamfer4_piece_1 = extrude(amount=40.773772562, mode=Mode.PRIVATE)
    chamfer4_piece_1 = split(chamfer4_piece_1, bisect_by=Plane(origin=(-12, 5, -16.386886281), z_dir=(0, 1, 0)), keep=Keep.TOP, mode=Mode.PRIVATE)
    chamfer4_piece_1 = split(chamfer4_piece_1, bisect_by=Plane(origin=(-10.127071192, 4.127071192, -16.386886281), z_dir=(-0.707106781186548, 0.7071067811865472, 0)), keep=Keep.TOP, mode=Mode.PRIVATE)
    add(chamfer4_piece_1, mode=Mode.SUBTRACT)
    with BuildSketch(Plane(origin=(34, 6, -16.386886281), x_dir=(-1, 0, 0), z_dir=(0, 0, 1))) as chamfer4_piece_2_section:
        Polygon((CHAMFER4_SIZE_2, 0), (0, CHAMFER4_SIZE), (0, 0), align=None)
    chamfer4_piece_2 = extrude(amount=40.773772562, mode=Mode.PRIVATE)
    chamfer4_piece_2 = split(chamfer4_piece_2, bisect_by=Plane(origin=(34, 5, -16.386886281), z_dir=(0, 1, 0)), keep=Keep.TOP, mode=Mode.PRIVATE)
    chamfer4_piece_2 = split(chamfer4_piece_2, bisect_by=Plane(origin=(32.08714237, 4.08714237, -16.386886281), z_dir=(0.7071067811865475, 0.7071067811865476, 0)), keep=Keep.TOP, mode=Mode.PRIVATE)
    add(chamfer4_piece_2, mode=Mode.SUBTRACT)


solid = cut_extrude3_piece_1_1.part
